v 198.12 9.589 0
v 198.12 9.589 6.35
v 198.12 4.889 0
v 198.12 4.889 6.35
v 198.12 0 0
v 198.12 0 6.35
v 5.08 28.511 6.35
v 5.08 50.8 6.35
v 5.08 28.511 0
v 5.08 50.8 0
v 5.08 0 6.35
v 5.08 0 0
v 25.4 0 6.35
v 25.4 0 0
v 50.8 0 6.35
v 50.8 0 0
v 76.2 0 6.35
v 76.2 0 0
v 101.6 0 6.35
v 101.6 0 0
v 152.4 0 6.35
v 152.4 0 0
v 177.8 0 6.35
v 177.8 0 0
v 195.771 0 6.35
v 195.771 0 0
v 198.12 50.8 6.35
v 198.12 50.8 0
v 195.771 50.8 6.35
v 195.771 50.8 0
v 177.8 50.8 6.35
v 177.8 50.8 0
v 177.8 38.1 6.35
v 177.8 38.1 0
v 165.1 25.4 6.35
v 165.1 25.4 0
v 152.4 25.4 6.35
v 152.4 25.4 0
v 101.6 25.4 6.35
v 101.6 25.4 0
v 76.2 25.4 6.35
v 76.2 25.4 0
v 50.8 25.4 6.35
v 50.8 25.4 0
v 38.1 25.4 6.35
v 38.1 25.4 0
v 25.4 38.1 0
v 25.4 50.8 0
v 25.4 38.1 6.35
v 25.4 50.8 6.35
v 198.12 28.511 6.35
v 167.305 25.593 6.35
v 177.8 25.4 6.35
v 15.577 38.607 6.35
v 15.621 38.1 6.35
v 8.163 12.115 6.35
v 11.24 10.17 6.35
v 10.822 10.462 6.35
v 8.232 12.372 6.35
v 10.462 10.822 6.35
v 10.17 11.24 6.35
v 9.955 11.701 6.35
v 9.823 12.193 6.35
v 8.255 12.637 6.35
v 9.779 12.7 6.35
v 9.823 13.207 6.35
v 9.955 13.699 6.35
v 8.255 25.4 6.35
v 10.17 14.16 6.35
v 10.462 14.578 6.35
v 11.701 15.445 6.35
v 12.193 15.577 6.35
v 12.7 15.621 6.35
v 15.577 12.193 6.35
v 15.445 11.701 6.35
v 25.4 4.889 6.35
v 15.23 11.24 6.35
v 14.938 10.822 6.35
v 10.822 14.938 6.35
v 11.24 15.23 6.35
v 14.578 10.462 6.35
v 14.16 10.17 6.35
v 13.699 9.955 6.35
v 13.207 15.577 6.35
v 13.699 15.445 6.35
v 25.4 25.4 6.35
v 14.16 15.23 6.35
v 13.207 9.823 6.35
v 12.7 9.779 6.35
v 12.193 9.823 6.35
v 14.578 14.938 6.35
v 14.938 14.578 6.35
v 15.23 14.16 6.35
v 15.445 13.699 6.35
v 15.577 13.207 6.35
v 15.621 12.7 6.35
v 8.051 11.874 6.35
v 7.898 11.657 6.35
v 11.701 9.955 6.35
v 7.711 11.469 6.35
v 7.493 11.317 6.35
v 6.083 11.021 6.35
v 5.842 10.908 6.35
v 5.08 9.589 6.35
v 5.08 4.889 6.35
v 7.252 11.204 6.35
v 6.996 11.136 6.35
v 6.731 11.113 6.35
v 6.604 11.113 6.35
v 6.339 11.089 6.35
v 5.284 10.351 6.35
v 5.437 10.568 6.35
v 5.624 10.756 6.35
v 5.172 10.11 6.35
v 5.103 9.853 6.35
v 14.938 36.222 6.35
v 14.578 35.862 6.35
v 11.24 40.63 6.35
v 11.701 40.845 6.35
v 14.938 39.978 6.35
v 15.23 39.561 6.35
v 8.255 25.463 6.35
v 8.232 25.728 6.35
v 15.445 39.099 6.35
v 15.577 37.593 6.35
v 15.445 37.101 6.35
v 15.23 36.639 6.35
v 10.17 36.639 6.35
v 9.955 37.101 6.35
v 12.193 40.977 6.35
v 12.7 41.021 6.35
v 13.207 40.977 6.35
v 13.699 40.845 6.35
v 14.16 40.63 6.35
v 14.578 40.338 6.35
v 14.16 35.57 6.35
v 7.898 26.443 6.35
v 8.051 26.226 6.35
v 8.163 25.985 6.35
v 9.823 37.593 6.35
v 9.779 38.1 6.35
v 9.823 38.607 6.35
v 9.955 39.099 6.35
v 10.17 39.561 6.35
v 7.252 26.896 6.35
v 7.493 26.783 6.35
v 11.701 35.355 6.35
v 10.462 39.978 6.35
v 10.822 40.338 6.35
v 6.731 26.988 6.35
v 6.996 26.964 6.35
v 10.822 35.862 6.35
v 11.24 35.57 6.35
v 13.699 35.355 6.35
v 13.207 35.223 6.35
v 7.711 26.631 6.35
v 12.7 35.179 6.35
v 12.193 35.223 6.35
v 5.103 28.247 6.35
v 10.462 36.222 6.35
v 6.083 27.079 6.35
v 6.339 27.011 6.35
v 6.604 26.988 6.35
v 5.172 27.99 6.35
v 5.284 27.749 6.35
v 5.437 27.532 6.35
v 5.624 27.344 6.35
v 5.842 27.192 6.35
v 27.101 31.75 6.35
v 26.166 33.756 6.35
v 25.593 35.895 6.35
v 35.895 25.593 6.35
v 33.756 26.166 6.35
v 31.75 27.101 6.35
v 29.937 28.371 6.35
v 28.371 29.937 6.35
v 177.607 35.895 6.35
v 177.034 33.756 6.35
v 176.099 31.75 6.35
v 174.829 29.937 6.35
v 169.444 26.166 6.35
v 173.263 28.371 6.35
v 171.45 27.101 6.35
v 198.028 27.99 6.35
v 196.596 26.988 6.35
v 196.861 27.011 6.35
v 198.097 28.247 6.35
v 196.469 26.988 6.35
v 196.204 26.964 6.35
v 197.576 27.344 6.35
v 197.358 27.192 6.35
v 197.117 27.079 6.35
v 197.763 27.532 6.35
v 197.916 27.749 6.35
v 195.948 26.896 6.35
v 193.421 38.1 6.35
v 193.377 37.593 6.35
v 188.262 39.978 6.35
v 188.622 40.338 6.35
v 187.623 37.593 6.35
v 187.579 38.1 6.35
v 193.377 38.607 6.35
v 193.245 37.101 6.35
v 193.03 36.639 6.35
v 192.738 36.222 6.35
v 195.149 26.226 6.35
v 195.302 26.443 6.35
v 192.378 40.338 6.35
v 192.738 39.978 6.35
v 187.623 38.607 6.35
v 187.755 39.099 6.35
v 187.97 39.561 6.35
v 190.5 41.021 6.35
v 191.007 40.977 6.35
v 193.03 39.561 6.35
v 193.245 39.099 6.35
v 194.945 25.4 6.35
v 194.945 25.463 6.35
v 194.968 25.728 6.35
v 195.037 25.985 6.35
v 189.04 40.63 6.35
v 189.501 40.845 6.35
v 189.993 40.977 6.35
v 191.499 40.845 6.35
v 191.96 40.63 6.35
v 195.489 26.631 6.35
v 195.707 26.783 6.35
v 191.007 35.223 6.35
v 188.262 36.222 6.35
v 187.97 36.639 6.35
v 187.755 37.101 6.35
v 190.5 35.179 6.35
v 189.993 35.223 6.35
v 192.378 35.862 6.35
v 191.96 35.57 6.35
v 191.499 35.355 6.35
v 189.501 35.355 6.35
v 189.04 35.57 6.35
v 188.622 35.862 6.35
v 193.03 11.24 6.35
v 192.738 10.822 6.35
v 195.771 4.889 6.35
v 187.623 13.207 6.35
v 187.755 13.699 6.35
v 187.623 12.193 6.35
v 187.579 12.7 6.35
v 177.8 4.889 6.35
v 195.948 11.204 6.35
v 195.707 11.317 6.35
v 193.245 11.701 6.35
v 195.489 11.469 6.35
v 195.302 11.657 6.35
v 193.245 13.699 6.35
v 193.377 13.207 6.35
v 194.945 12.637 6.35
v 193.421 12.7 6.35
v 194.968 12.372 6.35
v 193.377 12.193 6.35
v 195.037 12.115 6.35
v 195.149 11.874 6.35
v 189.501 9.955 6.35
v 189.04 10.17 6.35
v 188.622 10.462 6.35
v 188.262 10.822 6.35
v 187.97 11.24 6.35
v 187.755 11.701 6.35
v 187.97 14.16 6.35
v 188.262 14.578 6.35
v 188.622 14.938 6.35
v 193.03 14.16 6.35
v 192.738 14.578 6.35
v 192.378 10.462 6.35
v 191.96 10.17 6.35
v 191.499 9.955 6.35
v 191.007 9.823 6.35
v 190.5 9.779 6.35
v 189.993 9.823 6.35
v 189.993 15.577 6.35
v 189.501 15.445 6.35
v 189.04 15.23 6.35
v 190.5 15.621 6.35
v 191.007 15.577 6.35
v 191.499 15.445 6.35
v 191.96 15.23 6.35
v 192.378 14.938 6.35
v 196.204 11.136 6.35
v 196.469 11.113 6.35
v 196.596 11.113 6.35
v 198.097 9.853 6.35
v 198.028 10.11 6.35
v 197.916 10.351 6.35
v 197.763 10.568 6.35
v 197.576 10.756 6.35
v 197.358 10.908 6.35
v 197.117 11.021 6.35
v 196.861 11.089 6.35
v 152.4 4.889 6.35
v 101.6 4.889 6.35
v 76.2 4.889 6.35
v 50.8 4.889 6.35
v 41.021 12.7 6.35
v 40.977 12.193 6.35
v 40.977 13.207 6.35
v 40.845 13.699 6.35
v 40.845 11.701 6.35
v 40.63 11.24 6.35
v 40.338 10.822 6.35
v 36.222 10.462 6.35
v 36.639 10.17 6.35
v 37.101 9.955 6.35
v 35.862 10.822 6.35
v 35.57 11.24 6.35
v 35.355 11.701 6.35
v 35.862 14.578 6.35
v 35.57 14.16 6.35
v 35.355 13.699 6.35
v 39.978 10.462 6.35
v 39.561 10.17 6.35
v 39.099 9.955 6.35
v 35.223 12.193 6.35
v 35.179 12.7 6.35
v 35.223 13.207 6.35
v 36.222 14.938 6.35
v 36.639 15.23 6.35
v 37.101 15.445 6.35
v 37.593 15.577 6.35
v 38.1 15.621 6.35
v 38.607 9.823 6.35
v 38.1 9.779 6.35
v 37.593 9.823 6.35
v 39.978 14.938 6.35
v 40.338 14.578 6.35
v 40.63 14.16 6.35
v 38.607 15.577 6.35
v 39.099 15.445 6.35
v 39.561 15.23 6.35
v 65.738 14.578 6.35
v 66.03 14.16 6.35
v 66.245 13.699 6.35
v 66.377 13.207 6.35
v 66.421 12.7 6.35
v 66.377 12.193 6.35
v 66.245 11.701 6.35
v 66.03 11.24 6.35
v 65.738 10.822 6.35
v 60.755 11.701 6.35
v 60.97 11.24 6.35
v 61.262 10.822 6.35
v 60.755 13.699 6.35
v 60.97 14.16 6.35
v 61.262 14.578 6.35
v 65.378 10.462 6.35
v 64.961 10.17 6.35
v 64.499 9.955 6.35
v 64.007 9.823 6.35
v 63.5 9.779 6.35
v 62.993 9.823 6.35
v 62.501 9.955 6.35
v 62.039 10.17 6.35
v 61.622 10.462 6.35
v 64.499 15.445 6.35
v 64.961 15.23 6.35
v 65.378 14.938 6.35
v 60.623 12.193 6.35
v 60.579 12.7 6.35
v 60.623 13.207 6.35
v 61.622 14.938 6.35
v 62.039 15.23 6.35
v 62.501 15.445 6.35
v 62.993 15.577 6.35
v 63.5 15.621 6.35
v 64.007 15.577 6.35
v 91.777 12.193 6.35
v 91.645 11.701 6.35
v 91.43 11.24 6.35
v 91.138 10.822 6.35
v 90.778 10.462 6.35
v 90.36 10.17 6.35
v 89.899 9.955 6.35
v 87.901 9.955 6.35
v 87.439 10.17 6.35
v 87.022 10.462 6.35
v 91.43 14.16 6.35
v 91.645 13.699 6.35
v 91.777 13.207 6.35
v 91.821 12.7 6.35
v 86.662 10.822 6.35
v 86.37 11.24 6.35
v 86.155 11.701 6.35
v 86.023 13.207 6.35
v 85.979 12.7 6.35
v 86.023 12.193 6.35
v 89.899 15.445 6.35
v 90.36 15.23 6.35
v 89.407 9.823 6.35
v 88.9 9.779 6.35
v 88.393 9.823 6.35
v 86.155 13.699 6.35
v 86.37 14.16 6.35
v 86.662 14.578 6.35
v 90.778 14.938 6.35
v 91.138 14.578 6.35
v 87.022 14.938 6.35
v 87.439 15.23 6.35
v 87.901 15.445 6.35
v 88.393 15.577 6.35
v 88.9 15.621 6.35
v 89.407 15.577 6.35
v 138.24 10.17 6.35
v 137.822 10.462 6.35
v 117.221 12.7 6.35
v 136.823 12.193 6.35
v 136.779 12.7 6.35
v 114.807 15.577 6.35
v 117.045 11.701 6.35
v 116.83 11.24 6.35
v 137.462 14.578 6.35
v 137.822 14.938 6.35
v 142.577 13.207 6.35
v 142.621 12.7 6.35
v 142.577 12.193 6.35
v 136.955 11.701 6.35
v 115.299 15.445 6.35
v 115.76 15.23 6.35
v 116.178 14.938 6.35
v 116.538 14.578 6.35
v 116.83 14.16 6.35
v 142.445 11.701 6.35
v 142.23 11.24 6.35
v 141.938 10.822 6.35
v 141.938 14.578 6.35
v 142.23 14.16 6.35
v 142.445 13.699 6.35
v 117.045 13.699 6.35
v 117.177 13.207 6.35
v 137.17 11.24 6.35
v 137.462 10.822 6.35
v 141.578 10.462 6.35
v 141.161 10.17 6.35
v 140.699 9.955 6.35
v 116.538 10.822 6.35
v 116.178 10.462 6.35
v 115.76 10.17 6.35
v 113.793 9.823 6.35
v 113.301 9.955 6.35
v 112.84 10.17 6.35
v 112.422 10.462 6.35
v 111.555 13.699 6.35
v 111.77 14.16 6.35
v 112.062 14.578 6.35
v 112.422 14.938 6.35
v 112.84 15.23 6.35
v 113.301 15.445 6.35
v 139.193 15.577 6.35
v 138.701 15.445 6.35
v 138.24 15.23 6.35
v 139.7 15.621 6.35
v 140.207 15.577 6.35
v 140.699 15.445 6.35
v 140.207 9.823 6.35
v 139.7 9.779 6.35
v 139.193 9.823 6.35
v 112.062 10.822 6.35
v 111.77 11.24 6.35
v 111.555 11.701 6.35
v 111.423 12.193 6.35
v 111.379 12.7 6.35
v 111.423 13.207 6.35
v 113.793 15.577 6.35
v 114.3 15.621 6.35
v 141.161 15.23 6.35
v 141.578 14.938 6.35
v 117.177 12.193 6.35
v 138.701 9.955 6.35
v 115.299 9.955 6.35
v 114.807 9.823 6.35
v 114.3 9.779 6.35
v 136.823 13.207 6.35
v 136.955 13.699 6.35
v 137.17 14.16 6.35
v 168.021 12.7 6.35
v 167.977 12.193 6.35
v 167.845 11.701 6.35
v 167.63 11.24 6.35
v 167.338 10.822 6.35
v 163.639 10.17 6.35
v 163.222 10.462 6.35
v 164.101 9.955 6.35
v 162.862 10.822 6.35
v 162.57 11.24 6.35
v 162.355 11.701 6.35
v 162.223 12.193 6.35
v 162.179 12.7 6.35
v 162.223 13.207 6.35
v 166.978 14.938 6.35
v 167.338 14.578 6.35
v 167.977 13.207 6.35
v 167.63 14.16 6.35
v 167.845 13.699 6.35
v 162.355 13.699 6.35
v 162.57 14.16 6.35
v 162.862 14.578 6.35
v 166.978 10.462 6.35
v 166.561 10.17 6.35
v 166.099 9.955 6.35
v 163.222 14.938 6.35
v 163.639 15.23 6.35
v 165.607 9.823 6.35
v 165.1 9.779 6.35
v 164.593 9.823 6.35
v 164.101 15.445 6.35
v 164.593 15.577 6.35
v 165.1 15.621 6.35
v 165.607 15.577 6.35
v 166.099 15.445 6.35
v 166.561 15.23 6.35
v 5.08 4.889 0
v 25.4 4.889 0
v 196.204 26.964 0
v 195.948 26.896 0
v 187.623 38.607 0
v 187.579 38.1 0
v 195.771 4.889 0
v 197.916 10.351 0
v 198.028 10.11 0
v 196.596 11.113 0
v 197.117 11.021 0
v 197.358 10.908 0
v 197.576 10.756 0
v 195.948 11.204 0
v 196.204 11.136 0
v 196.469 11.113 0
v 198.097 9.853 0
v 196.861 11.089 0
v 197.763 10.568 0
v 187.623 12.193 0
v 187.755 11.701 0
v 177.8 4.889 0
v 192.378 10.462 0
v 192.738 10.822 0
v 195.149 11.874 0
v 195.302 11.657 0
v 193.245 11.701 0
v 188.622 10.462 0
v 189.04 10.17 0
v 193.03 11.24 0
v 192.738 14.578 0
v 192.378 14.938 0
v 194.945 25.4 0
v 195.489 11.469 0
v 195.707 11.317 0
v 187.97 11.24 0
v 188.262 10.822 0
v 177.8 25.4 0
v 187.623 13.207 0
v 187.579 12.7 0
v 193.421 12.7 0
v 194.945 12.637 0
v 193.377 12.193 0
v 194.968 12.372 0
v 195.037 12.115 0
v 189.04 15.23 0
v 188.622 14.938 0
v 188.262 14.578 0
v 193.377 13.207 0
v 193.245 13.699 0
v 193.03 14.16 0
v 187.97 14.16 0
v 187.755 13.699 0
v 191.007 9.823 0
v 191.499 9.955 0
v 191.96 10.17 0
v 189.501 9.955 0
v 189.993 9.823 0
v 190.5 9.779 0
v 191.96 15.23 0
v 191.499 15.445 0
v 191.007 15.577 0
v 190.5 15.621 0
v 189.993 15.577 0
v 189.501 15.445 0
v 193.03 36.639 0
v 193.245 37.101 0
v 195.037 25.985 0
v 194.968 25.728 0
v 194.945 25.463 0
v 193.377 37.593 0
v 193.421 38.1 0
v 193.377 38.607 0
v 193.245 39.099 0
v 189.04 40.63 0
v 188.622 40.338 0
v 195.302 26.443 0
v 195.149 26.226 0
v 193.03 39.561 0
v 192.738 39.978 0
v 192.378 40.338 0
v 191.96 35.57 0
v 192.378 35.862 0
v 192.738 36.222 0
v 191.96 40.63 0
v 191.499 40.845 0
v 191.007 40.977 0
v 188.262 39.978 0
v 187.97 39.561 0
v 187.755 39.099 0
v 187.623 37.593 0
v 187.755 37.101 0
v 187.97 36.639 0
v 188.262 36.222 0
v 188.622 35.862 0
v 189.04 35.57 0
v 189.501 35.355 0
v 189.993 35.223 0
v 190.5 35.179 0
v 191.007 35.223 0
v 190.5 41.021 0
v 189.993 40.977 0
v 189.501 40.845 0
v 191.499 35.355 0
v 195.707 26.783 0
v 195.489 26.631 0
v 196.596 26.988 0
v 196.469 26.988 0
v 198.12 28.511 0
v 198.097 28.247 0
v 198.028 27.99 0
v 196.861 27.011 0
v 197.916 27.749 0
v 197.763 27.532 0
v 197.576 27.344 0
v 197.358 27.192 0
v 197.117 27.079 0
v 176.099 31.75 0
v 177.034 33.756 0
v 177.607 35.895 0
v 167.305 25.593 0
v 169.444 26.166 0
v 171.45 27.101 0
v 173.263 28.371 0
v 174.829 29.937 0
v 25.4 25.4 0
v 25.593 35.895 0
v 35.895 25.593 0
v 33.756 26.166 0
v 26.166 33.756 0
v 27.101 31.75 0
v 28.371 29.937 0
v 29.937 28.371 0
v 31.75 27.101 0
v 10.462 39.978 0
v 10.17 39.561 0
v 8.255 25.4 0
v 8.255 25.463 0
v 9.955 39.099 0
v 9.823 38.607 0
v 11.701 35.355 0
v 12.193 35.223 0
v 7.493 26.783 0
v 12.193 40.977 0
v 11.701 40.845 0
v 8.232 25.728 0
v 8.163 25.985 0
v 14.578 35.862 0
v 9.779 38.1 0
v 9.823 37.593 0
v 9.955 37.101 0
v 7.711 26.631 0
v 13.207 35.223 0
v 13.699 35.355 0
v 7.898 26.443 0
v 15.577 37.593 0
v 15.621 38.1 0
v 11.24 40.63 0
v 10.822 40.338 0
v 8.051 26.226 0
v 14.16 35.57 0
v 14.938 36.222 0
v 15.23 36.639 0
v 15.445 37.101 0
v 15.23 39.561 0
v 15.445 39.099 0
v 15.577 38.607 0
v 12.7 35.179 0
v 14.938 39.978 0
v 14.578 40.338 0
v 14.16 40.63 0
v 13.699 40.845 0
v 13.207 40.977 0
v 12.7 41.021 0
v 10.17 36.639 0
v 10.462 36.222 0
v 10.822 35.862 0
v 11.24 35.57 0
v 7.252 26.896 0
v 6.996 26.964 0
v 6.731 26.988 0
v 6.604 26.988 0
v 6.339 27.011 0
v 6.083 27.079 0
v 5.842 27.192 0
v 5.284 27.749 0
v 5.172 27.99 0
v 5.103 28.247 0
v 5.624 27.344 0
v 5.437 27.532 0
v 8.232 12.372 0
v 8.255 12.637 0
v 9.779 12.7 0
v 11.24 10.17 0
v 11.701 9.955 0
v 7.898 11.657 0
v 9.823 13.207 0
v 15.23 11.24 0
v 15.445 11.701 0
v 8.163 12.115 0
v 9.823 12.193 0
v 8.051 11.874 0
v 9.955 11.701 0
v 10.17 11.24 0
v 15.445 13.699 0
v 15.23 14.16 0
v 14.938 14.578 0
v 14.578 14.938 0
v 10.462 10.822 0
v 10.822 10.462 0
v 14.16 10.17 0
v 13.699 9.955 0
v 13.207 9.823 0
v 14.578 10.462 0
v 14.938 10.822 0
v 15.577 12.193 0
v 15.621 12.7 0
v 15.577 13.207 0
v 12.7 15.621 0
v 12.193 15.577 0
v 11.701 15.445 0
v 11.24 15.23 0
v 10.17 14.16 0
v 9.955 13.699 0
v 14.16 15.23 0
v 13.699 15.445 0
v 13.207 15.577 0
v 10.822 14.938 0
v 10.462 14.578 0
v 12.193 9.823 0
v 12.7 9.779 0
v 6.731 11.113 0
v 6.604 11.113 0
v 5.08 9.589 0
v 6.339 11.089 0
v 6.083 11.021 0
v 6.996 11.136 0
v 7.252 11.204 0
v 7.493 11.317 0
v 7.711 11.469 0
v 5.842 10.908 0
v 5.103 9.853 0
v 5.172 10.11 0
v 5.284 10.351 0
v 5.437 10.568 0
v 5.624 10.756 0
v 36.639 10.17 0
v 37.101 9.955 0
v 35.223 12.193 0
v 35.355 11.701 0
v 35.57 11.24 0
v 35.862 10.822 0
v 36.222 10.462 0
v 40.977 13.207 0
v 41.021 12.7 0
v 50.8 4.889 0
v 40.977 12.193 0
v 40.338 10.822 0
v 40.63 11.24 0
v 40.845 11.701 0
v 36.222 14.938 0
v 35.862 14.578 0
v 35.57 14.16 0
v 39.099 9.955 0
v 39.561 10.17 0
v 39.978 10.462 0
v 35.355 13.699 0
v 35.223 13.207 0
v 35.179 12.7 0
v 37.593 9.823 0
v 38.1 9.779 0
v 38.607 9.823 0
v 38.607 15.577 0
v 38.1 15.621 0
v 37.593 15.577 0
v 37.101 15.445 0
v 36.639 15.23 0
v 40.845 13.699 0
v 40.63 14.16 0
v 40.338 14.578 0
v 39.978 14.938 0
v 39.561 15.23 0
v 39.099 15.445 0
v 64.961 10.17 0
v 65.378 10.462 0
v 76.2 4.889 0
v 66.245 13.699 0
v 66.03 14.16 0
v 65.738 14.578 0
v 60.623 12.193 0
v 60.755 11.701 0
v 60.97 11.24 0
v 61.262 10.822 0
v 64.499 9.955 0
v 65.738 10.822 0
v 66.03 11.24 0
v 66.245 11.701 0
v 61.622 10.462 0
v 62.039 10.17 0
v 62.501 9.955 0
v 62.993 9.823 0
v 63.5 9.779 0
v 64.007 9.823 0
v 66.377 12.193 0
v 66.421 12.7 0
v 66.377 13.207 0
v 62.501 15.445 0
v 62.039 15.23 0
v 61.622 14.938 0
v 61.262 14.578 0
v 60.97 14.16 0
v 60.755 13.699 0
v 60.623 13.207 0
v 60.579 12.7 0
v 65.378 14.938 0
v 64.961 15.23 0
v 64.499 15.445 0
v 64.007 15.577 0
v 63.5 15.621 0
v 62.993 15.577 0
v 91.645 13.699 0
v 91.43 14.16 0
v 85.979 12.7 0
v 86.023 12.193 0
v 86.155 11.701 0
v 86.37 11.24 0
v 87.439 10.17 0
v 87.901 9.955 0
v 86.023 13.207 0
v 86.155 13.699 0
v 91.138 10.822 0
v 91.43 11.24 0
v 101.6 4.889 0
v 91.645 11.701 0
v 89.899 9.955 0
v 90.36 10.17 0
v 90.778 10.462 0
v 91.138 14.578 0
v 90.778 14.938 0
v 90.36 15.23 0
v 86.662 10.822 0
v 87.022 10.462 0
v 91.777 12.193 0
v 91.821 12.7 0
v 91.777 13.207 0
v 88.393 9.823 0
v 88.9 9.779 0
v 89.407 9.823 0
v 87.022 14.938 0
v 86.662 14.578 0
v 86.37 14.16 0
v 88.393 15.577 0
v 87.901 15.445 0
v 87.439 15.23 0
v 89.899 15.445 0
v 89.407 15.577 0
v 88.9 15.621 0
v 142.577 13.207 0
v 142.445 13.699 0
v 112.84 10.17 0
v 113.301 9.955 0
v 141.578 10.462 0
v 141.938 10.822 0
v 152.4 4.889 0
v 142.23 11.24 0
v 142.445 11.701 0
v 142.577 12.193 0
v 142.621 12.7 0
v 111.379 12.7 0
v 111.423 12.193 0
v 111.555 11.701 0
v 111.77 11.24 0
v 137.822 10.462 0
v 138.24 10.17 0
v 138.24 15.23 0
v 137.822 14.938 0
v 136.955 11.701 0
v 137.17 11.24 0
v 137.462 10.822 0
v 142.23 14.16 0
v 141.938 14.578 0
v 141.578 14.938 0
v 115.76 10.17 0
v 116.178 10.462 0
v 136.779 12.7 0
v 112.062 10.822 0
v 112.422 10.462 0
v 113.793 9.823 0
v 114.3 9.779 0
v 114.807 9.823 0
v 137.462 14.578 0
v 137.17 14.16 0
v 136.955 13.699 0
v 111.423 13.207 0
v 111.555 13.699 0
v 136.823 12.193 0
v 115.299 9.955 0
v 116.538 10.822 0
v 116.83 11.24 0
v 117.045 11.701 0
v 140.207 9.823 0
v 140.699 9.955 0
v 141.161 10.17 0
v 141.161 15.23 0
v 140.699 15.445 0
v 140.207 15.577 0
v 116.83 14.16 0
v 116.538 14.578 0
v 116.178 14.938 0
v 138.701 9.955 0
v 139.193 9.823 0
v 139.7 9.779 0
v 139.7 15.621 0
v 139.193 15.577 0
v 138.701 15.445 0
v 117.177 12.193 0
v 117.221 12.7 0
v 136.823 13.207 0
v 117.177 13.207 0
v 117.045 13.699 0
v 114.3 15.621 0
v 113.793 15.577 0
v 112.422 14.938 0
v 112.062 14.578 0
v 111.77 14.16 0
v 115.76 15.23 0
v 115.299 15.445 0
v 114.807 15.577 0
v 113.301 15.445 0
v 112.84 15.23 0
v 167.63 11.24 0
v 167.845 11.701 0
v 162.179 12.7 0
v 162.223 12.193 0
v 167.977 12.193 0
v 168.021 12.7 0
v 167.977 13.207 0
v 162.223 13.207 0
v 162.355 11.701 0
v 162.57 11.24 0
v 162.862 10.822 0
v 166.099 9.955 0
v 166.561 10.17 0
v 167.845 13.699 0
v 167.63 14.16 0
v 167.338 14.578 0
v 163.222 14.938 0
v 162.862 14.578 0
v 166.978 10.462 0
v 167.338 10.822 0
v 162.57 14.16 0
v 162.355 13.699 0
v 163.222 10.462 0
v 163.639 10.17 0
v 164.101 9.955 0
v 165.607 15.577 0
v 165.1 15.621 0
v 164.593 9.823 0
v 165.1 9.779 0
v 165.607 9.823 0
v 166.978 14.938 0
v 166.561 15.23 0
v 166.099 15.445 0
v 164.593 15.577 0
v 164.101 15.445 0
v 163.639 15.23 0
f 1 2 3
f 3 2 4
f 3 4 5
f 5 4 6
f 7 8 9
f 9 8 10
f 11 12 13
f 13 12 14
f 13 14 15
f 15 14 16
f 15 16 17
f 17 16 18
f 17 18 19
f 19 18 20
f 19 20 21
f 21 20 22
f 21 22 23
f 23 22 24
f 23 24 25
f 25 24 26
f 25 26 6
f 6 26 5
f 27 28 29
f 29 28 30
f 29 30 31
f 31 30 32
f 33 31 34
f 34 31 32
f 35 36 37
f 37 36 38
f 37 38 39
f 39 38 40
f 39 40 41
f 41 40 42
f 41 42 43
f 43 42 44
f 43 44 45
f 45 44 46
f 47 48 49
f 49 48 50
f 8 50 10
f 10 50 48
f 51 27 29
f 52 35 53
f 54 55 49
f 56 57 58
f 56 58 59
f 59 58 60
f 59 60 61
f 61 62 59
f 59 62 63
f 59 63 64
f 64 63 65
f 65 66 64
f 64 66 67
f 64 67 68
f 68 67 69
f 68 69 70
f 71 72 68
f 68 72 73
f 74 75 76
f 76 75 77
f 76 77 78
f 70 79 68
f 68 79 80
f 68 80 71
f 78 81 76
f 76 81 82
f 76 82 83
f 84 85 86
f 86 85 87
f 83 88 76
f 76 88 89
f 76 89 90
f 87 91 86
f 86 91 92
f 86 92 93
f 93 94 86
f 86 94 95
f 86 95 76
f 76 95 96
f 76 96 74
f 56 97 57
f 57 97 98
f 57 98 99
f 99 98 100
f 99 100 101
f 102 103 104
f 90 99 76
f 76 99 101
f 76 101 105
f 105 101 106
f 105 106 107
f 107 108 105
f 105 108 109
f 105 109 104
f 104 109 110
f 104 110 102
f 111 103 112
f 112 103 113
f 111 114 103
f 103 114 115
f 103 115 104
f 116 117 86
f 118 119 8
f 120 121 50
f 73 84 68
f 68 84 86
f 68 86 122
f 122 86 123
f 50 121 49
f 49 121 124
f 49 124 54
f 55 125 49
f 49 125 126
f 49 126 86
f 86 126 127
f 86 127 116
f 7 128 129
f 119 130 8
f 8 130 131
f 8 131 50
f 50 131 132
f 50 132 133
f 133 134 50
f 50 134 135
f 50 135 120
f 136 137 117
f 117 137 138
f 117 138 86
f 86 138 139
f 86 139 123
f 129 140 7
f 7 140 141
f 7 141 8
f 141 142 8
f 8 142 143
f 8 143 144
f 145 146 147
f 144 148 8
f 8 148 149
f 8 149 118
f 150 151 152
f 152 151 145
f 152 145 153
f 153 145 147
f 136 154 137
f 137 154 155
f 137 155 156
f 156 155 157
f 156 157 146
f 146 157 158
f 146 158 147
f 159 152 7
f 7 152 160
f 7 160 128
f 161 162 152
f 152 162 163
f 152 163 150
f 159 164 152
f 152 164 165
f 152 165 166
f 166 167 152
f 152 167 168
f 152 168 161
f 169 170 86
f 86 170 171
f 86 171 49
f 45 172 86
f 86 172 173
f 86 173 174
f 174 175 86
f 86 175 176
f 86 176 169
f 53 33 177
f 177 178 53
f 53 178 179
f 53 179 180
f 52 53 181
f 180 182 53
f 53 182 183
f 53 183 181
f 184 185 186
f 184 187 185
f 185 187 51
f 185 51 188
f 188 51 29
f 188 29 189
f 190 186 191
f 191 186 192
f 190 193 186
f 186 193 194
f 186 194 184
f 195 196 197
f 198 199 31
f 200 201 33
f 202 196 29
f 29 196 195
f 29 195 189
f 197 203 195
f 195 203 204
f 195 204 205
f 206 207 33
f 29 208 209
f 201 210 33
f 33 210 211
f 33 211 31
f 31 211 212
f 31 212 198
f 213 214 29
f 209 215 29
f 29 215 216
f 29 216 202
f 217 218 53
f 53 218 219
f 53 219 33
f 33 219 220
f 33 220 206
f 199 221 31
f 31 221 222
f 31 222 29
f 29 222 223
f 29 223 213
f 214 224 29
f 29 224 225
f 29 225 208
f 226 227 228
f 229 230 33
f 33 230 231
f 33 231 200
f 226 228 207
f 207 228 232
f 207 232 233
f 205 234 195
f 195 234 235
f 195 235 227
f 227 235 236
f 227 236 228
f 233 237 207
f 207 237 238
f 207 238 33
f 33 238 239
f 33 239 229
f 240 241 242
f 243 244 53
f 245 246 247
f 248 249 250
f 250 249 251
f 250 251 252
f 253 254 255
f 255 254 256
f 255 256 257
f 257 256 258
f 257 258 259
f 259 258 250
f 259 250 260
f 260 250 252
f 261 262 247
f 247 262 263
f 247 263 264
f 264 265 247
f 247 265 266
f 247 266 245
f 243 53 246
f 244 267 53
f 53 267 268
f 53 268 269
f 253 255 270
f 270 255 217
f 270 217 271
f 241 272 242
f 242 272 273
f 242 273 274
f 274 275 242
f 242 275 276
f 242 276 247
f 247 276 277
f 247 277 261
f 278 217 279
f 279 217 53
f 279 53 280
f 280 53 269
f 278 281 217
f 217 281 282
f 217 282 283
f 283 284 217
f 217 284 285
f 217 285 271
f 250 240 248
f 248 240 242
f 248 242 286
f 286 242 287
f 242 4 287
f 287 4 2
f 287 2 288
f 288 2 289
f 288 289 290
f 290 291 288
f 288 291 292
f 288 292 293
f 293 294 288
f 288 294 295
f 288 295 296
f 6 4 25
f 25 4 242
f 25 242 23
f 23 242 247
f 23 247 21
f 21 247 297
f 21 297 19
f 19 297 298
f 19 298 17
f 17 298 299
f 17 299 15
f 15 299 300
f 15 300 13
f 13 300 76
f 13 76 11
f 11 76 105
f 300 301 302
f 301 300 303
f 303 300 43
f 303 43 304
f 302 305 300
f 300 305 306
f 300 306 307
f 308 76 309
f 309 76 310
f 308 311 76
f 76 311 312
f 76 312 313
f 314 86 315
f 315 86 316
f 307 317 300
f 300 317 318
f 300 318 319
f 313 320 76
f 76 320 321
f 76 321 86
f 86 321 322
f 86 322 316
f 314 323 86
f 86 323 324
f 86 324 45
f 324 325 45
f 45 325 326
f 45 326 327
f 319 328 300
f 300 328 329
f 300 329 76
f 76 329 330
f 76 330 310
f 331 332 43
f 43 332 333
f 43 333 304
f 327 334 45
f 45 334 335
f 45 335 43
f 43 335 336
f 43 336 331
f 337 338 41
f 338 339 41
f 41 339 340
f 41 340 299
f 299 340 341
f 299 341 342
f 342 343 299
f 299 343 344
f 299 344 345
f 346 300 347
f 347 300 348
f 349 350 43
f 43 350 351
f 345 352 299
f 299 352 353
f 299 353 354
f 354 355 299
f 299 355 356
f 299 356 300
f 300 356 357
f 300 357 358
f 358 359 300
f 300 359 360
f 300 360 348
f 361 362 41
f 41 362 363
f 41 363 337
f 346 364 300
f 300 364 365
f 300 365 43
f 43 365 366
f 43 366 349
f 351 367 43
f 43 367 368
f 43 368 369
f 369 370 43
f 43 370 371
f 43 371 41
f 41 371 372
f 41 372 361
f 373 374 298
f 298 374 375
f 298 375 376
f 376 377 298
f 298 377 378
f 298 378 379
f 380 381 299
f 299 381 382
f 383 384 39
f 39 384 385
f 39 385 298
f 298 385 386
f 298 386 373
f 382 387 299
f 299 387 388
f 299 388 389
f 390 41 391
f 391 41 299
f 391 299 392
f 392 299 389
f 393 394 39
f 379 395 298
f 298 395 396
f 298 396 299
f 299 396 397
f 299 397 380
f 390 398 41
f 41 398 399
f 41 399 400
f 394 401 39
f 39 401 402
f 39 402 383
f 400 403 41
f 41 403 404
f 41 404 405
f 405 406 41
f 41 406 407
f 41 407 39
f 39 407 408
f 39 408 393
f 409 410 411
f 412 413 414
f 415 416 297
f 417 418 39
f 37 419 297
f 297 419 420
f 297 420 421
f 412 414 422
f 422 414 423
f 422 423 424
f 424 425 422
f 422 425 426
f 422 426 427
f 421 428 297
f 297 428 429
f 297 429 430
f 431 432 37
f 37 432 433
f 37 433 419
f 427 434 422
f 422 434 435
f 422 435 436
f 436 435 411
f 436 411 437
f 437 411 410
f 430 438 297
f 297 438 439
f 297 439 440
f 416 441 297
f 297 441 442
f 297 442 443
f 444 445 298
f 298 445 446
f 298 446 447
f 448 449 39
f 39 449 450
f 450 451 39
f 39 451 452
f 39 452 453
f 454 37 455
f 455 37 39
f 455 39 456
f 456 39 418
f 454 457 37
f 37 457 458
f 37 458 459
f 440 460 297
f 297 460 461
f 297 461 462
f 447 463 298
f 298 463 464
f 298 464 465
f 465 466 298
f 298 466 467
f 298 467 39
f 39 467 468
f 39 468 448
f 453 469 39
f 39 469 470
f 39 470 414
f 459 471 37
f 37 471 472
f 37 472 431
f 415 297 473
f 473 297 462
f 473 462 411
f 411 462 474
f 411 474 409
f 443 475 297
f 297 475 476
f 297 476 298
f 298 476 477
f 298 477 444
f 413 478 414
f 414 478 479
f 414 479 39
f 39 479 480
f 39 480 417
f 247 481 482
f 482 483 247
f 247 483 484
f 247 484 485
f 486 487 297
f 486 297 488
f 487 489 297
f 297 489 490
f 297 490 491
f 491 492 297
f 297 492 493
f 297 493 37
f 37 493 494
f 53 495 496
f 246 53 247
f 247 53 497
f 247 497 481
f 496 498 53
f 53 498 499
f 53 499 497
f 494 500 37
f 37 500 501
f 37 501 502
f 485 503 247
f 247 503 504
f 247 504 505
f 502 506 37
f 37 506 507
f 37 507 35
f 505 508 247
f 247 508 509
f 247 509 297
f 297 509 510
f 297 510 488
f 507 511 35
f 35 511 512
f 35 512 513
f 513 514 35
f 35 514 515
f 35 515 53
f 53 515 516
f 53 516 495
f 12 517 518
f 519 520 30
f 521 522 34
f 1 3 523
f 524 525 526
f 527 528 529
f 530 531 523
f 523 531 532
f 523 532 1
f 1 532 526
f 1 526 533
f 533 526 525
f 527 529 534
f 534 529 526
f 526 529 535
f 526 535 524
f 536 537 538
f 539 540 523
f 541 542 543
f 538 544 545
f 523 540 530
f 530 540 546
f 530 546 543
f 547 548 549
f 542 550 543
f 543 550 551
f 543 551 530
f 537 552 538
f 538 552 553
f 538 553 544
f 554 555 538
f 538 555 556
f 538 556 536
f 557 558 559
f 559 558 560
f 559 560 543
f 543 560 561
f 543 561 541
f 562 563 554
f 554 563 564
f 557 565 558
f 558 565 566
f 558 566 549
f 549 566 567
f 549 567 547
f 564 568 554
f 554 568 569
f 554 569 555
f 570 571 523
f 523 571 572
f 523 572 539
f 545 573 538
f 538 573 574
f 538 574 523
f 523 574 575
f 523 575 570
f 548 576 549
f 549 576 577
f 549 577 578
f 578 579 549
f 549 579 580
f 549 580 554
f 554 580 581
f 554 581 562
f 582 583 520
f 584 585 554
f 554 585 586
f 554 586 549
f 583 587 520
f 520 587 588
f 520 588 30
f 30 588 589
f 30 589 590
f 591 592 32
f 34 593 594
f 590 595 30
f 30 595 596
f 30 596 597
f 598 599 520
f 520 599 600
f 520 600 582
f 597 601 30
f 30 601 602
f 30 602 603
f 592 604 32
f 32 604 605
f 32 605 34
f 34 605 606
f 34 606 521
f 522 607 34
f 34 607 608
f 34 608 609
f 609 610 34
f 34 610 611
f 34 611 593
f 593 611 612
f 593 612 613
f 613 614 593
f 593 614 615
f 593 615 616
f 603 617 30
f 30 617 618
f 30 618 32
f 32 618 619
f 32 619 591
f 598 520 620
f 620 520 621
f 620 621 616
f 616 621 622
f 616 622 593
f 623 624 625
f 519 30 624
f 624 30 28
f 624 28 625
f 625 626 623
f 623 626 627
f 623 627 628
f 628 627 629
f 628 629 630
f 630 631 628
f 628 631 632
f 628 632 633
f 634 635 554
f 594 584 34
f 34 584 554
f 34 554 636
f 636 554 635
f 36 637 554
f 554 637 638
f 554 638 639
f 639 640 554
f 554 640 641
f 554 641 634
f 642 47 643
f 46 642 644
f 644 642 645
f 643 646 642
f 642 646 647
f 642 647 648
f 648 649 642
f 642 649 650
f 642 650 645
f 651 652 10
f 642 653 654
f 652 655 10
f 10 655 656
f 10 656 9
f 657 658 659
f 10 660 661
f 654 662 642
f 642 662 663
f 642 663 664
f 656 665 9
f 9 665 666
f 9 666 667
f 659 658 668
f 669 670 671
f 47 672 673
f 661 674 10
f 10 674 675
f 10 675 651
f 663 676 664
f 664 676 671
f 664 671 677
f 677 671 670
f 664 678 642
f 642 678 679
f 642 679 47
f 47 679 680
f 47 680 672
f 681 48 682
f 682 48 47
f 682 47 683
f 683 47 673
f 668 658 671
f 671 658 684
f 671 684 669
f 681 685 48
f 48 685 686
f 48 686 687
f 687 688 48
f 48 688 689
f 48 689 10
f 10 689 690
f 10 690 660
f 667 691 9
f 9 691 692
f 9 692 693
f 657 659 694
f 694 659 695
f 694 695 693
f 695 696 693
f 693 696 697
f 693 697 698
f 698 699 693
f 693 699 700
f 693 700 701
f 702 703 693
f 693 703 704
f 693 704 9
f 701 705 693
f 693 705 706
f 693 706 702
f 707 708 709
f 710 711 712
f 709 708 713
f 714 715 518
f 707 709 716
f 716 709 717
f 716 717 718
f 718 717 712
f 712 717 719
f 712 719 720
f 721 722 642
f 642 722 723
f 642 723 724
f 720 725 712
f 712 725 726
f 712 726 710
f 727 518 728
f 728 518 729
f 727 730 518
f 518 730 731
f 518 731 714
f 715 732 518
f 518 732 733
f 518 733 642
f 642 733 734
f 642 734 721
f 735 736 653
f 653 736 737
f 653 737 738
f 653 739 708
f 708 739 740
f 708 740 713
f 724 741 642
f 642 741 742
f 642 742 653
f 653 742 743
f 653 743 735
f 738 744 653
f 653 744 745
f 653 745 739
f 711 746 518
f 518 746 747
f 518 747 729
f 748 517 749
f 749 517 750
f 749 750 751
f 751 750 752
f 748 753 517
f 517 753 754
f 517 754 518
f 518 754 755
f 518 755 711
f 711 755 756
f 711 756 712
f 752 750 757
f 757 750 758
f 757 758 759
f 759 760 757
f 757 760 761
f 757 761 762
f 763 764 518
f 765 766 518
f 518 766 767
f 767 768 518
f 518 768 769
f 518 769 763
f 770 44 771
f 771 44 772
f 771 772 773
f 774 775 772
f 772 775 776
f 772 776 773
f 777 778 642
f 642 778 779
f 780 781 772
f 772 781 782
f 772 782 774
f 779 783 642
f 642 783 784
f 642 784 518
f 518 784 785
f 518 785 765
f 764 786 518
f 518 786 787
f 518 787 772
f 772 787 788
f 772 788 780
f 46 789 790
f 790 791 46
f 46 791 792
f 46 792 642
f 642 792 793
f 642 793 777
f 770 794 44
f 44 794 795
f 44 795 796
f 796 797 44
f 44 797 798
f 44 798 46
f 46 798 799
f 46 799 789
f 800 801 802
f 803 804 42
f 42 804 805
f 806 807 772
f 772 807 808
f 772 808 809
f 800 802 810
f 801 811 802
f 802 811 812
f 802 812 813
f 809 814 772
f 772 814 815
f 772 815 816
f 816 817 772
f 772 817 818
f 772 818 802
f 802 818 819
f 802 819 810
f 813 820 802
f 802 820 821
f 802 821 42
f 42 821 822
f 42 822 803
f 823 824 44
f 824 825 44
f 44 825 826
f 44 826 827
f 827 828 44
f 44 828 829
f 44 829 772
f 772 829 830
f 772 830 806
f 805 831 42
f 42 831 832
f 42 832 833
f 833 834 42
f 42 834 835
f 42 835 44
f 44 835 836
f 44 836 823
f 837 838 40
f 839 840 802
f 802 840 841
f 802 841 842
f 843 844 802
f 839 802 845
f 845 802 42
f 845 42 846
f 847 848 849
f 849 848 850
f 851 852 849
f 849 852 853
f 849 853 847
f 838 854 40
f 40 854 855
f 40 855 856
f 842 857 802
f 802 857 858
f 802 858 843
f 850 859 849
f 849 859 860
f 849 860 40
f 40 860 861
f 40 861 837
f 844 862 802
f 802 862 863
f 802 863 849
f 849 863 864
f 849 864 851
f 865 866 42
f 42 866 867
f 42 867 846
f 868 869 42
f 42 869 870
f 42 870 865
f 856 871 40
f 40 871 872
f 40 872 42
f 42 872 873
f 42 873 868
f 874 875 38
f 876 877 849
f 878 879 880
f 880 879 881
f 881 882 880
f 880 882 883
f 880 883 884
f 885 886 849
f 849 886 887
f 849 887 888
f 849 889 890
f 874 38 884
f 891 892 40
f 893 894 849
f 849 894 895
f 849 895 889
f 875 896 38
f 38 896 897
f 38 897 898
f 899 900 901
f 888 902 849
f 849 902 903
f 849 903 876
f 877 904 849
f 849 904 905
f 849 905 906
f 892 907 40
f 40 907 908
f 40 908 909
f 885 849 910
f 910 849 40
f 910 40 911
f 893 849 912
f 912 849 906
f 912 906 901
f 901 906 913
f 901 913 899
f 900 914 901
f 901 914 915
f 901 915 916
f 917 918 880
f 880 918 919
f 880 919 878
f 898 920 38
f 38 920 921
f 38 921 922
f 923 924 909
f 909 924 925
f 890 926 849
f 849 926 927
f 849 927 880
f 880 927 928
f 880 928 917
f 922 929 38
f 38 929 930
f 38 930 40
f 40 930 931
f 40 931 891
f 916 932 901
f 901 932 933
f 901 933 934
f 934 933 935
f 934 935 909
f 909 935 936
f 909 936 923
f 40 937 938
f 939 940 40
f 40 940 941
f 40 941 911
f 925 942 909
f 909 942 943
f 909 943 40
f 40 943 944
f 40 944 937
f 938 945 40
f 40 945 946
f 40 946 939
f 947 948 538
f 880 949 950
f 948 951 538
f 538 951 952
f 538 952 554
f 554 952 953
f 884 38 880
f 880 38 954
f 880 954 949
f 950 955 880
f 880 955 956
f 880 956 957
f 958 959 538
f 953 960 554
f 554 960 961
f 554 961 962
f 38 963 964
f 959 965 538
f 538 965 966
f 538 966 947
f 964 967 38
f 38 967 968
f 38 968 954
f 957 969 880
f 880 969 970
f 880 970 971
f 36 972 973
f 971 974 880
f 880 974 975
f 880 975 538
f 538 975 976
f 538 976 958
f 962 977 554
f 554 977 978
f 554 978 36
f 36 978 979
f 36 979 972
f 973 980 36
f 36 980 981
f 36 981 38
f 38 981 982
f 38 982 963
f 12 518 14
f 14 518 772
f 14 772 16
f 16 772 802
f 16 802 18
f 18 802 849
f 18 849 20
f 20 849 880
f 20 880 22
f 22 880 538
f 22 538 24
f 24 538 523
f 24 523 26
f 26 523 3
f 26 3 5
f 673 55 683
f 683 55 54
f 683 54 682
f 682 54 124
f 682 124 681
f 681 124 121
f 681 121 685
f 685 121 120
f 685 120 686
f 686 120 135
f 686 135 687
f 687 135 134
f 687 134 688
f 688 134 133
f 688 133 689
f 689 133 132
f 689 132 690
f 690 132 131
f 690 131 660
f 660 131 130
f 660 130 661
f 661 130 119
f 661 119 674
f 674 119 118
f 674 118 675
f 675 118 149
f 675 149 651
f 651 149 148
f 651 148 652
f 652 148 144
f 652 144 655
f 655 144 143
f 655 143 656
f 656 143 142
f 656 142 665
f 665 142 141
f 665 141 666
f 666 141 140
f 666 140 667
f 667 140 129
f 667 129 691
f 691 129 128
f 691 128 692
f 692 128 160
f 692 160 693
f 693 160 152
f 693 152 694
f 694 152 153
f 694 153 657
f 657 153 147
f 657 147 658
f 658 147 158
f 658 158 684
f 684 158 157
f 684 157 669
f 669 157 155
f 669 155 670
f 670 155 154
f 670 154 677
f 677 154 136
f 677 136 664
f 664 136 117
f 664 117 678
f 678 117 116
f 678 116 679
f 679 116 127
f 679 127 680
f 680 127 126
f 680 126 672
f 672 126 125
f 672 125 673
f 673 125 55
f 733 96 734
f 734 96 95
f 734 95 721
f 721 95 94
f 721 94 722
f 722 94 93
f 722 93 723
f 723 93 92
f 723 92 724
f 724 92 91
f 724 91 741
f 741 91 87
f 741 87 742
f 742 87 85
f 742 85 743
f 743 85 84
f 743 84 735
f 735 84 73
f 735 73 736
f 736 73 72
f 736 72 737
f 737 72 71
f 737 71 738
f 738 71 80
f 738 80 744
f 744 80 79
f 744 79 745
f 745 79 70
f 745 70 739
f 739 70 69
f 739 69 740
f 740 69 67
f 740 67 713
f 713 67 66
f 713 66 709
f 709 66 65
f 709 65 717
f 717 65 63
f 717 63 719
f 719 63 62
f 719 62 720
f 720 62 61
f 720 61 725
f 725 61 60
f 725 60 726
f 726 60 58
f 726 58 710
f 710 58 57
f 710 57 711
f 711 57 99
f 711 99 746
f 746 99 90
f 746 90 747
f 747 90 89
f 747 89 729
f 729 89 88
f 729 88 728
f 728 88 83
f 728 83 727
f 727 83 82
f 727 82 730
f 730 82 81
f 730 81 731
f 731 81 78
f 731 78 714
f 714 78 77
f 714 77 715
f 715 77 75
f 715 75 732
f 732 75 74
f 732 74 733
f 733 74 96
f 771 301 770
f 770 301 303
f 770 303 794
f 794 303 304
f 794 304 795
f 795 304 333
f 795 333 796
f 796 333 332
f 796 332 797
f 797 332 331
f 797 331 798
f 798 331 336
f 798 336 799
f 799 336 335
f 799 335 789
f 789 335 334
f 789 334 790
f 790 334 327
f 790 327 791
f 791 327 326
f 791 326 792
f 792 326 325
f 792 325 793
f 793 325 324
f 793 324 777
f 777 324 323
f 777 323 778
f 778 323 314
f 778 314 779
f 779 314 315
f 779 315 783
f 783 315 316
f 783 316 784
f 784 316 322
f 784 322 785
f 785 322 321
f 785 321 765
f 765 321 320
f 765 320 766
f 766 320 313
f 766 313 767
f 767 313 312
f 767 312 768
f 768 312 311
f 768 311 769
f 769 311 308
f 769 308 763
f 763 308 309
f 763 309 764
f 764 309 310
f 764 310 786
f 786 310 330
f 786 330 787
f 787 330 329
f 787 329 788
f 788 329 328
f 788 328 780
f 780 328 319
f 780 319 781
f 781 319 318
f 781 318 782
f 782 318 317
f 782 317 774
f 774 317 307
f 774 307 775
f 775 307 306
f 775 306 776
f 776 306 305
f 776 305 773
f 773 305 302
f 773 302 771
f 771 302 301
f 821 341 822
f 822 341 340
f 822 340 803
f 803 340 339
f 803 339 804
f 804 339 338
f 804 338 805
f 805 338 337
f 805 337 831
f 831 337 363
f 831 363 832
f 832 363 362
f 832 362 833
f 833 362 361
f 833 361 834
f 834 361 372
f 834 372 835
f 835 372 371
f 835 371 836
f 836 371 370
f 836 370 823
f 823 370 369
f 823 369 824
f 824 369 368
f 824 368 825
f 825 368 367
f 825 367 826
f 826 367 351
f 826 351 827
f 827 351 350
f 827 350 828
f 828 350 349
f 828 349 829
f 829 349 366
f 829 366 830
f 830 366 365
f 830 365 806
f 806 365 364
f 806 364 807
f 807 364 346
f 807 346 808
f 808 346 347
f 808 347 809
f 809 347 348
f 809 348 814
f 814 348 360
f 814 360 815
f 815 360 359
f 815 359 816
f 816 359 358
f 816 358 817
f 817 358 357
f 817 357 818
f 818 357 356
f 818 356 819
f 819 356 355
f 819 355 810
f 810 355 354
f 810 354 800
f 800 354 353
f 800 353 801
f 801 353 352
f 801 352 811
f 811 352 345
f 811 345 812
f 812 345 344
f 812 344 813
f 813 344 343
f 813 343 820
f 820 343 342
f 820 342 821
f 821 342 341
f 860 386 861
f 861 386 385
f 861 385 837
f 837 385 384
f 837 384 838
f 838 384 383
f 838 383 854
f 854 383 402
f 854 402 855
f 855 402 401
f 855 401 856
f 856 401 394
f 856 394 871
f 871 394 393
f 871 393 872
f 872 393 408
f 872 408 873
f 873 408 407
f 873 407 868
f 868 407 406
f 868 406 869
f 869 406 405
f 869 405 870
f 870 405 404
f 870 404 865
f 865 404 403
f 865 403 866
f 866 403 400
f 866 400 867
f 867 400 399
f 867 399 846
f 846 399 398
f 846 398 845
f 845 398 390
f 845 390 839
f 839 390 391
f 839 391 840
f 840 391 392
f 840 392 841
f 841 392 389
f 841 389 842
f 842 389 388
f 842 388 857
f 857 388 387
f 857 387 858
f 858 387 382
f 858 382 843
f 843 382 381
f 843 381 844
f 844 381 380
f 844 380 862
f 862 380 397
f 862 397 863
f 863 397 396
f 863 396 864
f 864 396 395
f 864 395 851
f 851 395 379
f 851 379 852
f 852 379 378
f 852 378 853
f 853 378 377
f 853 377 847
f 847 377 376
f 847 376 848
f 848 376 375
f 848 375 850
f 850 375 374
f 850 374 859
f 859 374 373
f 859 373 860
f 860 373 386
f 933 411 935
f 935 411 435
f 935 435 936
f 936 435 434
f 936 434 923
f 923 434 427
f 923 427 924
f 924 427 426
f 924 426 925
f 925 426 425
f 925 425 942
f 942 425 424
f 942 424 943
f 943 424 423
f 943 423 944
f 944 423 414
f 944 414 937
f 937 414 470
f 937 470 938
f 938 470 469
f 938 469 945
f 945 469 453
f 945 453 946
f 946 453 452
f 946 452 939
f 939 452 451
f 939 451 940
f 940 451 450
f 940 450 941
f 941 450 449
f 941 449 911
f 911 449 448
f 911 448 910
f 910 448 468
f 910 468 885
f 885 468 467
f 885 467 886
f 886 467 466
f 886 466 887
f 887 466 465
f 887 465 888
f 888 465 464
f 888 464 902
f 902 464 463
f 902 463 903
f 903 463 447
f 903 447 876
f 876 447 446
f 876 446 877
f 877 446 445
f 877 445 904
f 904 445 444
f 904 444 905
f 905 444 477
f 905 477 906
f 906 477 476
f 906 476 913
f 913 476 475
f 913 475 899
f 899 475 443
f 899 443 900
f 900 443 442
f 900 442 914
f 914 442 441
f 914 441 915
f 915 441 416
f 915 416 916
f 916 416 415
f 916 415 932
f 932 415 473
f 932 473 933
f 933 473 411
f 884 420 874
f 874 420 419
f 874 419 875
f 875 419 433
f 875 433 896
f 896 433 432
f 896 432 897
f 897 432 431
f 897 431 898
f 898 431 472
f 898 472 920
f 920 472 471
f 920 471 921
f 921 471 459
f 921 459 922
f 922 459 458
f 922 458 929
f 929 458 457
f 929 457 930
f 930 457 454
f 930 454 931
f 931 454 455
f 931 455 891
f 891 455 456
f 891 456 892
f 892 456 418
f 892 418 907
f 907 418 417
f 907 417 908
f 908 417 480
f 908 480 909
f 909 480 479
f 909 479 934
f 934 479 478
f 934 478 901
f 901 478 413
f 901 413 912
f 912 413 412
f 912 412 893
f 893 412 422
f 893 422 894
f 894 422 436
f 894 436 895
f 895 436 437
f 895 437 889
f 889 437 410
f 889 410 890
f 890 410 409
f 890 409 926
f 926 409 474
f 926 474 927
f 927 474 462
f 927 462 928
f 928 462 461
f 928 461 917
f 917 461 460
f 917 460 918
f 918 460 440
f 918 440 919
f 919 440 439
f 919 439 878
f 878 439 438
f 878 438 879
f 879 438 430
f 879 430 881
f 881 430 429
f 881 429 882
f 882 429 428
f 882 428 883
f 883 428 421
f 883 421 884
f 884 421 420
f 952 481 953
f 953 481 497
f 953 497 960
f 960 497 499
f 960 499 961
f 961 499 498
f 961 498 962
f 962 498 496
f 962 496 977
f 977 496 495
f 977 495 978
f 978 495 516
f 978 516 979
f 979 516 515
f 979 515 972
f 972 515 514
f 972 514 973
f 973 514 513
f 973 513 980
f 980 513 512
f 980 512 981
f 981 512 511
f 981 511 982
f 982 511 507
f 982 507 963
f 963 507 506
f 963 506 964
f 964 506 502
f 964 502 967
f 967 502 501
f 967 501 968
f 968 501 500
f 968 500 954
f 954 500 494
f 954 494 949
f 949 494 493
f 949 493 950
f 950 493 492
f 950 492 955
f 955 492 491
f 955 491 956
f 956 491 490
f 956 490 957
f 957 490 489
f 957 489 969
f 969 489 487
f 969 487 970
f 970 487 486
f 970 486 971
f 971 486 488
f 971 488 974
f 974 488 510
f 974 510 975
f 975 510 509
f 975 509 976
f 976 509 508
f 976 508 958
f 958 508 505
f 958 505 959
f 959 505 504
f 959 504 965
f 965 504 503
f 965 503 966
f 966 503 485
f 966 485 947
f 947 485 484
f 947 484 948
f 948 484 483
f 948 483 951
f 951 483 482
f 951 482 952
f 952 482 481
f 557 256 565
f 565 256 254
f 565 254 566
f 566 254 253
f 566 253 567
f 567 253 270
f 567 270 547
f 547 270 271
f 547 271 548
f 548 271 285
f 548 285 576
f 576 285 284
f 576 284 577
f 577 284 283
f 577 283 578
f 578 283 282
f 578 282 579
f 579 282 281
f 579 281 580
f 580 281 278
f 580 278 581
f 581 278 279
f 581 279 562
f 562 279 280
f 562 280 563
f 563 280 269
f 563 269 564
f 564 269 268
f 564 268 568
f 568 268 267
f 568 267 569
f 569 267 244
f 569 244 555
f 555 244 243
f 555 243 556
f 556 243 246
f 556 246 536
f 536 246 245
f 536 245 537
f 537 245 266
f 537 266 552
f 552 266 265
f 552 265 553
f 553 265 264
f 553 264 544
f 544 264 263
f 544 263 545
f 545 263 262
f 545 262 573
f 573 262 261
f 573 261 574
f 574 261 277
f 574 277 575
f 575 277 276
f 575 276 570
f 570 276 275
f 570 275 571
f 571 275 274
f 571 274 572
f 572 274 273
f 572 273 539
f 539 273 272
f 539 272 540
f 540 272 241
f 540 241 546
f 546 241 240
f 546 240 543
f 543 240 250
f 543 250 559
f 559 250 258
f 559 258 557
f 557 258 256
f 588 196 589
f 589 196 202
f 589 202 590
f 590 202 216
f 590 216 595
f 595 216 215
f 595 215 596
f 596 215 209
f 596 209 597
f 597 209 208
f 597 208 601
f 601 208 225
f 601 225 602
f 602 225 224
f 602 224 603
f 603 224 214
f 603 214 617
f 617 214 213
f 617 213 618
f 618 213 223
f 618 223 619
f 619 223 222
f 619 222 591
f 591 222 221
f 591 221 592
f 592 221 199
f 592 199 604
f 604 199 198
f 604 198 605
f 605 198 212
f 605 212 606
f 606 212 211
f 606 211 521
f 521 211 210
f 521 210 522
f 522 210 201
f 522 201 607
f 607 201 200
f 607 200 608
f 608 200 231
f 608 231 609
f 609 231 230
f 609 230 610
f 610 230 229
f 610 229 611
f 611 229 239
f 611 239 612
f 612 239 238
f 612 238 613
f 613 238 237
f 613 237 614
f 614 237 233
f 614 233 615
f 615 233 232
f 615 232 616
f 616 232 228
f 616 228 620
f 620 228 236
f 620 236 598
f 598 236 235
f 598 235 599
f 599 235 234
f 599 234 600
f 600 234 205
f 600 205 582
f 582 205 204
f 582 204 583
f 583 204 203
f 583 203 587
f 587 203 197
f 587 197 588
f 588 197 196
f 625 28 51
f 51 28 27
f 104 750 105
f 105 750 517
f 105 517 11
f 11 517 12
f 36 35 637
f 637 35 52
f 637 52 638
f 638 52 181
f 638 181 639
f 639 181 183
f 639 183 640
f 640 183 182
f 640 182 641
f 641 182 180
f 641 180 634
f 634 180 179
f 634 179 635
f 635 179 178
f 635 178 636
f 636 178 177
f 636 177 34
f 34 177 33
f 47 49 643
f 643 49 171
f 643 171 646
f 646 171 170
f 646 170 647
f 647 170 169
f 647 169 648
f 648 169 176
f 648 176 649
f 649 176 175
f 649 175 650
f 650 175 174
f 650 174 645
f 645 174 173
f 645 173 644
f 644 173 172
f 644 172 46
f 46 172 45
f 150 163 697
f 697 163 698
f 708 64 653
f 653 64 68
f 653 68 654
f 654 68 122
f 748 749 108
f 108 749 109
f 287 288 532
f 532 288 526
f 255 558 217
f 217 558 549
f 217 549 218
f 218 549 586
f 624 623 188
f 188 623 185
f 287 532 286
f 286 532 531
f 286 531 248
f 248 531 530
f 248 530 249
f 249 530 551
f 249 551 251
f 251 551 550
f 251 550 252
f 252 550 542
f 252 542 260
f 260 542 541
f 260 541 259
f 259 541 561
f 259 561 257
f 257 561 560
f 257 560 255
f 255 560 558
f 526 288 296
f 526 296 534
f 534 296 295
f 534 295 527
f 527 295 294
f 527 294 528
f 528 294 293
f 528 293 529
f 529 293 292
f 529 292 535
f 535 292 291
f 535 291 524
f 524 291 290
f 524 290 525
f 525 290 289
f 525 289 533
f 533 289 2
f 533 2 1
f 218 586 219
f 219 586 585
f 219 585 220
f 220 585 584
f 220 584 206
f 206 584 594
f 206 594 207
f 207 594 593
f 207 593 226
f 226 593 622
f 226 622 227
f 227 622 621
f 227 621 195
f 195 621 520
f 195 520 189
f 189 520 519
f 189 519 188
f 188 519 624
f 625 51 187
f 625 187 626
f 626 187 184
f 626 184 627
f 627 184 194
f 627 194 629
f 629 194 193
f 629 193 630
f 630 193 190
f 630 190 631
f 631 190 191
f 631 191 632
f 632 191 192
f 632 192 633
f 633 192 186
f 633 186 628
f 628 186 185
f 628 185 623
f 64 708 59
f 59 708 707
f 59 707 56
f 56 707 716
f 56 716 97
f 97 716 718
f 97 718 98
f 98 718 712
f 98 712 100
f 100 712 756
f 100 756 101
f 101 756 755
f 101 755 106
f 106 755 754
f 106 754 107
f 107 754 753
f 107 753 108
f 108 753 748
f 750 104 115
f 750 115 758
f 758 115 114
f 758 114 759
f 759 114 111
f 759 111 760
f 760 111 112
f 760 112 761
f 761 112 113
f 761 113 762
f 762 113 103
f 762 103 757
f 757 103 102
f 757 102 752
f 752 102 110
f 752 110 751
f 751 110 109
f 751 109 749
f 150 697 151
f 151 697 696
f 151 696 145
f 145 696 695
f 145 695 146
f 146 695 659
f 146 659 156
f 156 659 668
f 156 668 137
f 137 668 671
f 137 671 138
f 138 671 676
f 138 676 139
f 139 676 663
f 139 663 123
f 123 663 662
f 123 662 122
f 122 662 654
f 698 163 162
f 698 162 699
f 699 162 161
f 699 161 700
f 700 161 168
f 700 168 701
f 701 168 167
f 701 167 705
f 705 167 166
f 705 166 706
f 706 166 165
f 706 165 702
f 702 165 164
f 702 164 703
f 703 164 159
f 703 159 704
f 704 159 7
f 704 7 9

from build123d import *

# Parameters (mm, degrees)
BOSS_EXTRUDE1_DEPTH = 6.35
SKETCH2_R           = 2.921
CUT_EXTRUDE1_DEPTH  = 210.55
SKETCH3_W           = 5.08
SKETCH3_H           = 50.8
CUT_EXTRUDE2_DEPTH  = 210.55
FILLET1_R           = 12.7
SKETCH4_W           = 3.175
SKETCH4_H           = 15.875
CUT_EXTRUDE3_DEPTH  = 205.627703159
FILLET2_R           = 1.524


with BuildPart() as part:
    # Sketch1 → Boss-Extrude1 (new body)
    with BuildSketch(Plane.XY):
        Polygon((0, 0), (0, 50.8), (25.4, 50.8), (25.4, 25.4), (177.8, 25.4), (177.8, 50.8), (203.2, 50.8), (203.2, 0), align=None)
    extrude(amount=BOSS_EXTRUDE1_DEPTH)

    # Sketch2 → Cut-Extrude1 (cut, through all)
    with BuildSketch(Plane.XY.offset(6.35)):
        with Locations((12.7, 38.1)):
            Circle(SKETCH2_R)
        with Locations((12.7, 12.7)):
            Circle(SKETCH2_R)
        with Locations((38.1, 12.7)):
            Circle(SKETCH2_R)
        with Locations((63.5, 12.7)):
            Circle(SKETCH2_R)
        with Locations((88.9, 12.7)):
            Circle(SKETCH2_R)
        with Locations((114.3, 12.7)):
            Circle(SKETCH2_R)
        with Locations((139.7, 12.7)):
            Circle(SKETCH2_R)
        with Locations((165.1, 12.7)):
            Circle(SKETCH2_R)
        with Locations((190.5, 12.7)):
            Circle(SKETCH2_R)
        with Locations(Location((190.5, 38.1, 0), (0, 0, 180))):
            Circle(SKETCH2_R)
    extrude(amount=-CUT_EXTRUDE1_DEPTH, mode=Mode.SUBTRACT)

    # Sketch3 → Cut-Extrude2 (cut, through all)
    with BuildSketch(Plane.XY.offset(6.35)):
        with Locations((2.54, 25.4)):
            Rectangle(SKETCH3_W, SKETCH3_H)
        with Locations((200.66, 25.4)):
            Rectangle(SKETCH3_W, SKETCH3_H)
    extrude(amount=-CUT_EXTRUDE2_DEPTH, mode=Mode.SUBTRACT)

    # Fillet1
    fillet1_edges = [part.edges().sort_by_distance(p)[0] for p in [
        (25.4, 25.4, 3.175),
        (177.8, 25.4, 3.175),
    ]]
    fillet(fillet1_edges, radius=FILLET1_R)

    # Sketch4 → Cut-Extrude3 (cut, through all)
    with BuildSketch(Plane.XY.offset(6.35)):
        with Locations((6.6675, 19.05)):
            Rectangle(SKETCH4_W, SKETCH4_H)
        with Locations((196.5325, 19.05)):
            Rectangle(SKETCH4_W, SKETCH4_H)
    extrude(amount=-CUT_EXTRUDE3_DEPTH, mode=Mode.SUBTRACT)

    # Fillet2
    fillet2_edges = [part.edges().sort_by_distance(p)[0] for p in [
        (5.08, 11.1125, 3.175),
        (5.08, 26.9875, 3.175),
        (8.255, 26.9875, 3.175),
        (8.255, 11.1125, 3.175),
        (198.12, 11.1125, 3.175),
        (194.945, 11.1125, 3.175),
        (194.945, 26.9875, 3.175),
        (198.12, 26.9875, 3.175),
    ]]
    fillet(fillet2_edges, radius=FILLET2_R)


solid = part.part
